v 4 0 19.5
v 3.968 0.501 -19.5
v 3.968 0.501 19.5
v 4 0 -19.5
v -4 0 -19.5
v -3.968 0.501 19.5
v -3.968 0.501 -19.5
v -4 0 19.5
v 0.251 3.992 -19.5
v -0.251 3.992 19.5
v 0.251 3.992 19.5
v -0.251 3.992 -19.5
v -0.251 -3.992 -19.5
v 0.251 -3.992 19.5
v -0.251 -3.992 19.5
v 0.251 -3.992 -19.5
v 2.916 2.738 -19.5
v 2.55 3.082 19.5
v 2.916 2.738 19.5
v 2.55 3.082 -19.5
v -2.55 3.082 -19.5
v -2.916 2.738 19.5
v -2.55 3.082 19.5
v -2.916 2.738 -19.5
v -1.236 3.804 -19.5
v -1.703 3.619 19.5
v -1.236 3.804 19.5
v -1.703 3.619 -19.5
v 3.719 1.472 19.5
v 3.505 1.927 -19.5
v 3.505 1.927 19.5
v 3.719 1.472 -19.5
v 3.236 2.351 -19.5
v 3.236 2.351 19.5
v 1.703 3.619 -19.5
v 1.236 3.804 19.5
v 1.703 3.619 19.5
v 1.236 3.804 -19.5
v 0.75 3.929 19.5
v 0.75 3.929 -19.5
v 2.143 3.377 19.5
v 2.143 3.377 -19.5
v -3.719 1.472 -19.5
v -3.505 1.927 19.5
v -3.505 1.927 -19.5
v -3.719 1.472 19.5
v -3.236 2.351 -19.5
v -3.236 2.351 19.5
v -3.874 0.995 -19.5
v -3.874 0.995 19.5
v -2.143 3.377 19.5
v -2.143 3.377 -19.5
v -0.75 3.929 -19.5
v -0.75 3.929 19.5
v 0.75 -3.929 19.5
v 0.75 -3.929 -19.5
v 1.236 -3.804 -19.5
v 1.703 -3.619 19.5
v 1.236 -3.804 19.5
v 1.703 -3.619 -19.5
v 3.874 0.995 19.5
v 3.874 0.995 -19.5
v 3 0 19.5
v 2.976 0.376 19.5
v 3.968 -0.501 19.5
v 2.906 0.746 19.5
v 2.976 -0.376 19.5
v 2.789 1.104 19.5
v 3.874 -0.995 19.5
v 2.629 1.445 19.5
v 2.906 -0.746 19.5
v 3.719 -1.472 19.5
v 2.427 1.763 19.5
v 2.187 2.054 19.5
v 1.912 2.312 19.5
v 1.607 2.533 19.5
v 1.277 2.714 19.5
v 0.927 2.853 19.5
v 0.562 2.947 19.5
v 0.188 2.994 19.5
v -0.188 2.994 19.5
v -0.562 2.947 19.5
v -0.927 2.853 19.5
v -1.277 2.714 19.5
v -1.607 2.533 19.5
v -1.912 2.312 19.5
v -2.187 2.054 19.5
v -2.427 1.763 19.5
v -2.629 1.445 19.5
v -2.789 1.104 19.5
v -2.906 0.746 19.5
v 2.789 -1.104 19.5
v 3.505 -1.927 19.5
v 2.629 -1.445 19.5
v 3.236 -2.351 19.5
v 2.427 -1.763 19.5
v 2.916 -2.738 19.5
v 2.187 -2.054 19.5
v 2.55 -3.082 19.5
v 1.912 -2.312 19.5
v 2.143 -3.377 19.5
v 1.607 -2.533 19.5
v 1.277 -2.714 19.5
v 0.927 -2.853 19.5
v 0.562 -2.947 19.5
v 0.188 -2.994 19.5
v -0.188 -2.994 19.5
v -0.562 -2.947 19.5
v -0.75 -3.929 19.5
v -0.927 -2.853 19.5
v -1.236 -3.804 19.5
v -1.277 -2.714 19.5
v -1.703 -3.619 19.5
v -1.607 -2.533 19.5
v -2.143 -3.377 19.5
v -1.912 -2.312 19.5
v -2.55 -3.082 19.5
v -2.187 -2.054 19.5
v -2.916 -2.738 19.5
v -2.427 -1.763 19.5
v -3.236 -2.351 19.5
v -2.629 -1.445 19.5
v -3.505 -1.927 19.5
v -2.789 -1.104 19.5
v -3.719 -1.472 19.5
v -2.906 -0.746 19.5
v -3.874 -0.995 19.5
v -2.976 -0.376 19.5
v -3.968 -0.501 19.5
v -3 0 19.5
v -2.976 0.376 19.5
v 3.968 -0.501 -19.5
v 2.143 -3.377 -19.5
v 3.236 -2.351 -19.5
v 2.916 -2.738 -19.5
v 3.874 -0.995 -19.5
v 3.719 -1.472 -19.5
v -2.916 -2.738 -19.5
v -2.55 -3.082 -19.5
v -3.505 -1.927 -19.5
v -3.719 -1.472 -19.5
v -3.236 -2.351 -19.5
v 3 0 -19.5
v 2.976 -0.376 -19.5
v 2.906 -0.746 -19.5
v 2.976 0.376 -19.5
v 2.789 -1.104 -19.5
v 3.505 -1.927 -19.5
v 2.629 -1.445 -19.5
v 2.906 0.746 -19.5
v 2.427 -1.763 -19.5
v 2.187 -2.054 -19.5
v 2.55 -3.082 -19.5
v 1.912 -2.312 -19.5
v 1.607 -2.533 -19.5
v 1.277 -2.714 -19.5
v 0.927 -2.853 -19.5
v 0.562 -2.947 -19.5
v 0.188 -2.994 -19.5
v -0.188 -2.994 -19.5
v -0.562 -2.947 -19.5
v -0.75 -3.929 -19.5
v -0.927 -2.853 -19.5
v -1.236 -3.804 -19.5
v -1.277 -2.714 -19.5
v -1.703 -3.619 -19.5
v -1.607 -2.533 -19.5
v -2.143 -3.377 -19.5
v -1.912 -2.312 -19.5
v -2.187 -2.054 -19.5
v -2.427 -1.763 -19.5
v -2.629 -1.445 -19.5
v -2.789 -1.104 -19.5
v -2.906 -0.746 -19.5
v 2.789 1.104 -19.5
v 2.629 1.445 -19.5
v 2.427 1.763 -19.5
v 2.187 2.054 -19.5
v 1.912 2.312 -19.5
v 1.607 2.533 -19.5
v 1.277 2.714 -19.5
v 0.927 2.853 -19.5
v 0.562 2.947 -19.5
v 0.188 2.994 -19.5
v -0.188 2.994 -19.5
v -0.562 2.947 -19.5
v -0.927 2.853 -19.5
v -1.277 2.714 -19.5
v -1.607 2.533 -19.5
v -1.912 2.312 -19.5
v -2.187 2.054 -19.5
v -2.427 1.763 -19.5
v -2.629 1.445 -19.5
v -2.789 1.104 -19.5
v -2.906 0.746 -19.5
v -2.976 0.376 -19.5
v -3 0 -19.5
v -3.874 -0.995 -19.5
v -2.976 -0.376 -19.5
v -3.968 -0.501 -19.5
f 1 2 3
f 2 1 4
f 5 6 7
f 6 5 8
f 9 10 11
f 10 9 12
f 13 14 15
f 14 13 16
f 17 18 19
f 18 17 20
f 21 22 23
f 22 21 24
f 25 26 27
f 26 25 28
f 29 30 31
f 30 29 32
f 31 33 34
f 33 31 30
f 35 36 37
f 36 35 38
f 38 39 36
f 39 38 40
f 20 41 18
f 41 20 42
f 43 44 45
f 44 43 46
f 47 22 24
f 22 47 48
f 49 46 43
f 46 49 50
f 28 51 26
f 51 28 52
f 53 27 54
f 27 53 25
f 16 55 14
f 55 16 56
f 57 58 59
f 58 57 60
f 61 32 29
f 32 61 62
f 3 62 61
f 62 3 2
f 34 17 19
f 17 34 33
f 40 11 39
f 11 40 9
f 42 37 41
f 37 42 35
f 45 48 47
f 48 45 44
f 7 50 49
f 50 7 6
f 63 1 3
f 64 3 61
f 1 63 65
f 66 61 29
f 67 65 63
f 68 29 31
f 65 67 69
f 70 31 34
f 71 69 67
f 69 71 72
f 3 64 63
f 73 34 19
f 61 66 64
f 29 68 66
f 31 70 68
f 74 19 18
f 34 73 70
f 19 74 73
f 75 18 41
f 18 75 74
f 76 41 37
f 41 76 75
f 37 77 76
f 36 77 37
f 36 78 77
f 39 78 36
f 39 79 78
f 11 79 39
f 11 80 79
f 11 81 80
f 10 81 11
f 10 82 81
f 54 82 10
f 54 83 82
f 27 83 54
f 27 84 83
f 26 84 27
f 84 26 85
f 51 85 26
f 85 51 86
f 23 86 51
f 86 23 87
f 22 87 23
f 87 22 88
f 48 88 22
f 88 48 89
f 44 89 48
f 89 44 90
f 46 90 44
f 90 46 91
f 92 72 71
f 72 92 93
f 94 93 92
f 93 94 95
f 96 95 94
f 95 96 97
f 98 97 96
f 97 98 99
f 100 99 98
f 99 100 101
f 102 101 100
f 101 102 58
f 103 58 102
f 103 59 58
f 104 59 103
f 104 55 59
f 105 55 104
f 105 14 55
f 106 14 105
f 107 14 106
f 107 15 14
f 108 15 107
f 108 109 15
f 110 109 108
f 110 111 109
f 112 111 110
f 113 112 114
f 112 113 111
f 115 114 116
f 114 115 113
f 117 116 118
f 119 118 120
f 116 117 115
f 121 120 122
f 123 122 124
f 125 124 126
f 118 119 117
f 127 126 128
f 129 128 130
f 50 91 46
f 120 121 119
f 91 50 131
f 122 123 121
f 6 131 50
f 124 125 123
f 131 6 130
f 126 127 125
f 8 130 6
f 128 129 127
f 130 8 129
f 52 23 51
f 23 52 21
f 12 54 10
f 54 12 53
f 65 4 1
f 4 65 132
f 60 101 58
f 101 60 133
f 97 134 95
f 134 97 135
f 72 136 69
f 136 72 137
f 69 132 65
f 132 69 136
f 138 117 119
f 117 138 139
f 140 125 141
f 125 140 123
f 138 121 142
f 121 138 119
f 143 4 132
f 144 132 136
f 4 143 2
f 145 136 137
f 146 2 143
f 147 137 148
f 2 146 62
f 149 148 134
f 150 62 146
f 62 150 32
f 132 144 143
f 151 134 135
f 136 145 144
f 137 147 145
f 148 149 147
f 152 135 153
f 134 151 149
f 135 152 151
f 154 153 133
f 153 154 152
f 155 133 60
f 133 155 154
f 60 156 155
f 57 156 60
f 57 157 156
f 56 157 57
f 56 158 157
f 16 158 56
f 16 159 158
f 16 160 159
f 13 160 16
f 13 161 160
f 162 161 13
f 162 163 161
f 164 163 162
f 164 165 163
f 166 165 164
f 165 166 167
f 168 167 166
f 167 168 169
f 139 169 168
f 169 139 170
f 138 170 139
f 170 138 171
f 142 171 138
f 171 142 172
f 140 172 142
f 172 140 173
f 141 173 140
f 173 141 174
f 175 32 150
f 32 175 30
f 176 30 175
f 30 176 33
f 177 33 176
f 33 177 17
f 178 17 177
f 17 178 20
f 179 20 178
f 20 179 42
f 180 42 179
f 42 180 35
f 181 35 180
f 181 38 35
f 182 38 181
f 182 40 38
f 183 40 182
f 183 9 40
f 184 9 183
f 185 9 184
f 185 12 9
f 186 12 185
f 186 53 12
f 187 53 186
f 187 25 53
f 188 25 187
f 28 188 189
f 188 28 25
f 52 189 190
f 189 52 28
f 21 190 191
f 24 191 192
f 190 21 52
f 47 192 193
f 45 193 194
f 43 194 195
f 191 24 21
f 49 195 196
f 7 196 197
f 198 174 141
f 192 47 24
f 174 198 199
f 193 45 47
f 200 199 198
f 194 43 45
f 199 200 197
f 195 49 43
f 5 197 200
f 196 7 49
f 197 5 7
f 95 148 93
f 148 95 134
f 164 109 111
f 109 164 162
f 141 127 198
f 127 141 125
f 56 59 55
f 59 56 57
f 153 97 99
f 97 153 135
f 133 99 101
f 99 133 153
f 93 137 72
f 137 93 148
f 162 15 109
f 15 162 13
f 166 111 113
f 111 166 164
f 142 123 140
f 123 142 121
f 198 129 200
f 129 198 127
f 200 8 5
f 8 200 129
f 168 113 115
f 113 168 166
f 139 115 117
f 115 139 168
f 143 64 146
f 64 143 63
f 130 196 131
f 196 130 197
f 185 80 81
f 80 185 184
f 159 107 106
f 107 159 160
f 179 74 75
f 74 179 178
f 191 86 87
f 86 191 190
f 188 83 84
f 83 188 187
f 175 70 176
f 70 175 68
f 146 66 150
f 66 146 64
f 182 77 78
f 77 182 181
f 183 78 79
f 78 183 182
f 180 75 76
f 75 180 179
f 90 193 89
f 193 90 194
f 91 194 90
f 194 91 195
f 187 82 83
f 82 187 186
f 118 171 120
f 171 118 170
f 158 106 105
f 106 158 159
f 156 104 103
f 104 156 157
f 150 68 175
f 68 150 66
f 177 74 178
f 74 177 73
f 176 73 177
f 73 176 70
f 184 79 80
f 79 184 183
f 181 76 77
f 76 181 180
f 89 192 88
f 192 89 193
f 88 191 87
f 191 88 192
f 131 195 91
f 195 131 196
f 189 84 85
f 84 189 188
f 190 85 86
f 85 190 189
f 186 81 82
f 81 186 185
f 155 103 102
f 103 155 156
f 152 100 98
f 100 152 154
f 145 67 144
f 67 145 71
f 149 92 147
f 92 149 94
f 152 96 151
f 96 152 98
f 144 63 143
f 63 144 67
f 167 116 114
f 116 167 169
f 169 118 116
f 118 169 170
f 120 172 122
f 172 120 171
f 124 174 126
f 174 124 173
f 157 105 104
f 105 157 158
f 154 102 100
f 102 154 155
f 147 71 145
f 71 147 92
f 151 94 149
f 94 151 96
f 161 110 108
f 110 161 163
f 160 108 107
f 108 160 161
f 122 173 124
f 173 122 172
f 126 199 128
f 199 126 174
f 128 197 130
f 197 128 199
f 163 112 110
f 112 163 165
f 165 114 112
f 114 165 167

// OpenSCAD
$fn = 50;


difference() {
	union() {
		translate(v = [0, 0, -19.5000000000]) {
			cylinder(h = 39, r = 4.0000000000);
		}
	}
	union() {
		translate(v = [0, 0, -100.0000000000]) {
			cylinder(h = 200, r = 3);
		}
	}
}
